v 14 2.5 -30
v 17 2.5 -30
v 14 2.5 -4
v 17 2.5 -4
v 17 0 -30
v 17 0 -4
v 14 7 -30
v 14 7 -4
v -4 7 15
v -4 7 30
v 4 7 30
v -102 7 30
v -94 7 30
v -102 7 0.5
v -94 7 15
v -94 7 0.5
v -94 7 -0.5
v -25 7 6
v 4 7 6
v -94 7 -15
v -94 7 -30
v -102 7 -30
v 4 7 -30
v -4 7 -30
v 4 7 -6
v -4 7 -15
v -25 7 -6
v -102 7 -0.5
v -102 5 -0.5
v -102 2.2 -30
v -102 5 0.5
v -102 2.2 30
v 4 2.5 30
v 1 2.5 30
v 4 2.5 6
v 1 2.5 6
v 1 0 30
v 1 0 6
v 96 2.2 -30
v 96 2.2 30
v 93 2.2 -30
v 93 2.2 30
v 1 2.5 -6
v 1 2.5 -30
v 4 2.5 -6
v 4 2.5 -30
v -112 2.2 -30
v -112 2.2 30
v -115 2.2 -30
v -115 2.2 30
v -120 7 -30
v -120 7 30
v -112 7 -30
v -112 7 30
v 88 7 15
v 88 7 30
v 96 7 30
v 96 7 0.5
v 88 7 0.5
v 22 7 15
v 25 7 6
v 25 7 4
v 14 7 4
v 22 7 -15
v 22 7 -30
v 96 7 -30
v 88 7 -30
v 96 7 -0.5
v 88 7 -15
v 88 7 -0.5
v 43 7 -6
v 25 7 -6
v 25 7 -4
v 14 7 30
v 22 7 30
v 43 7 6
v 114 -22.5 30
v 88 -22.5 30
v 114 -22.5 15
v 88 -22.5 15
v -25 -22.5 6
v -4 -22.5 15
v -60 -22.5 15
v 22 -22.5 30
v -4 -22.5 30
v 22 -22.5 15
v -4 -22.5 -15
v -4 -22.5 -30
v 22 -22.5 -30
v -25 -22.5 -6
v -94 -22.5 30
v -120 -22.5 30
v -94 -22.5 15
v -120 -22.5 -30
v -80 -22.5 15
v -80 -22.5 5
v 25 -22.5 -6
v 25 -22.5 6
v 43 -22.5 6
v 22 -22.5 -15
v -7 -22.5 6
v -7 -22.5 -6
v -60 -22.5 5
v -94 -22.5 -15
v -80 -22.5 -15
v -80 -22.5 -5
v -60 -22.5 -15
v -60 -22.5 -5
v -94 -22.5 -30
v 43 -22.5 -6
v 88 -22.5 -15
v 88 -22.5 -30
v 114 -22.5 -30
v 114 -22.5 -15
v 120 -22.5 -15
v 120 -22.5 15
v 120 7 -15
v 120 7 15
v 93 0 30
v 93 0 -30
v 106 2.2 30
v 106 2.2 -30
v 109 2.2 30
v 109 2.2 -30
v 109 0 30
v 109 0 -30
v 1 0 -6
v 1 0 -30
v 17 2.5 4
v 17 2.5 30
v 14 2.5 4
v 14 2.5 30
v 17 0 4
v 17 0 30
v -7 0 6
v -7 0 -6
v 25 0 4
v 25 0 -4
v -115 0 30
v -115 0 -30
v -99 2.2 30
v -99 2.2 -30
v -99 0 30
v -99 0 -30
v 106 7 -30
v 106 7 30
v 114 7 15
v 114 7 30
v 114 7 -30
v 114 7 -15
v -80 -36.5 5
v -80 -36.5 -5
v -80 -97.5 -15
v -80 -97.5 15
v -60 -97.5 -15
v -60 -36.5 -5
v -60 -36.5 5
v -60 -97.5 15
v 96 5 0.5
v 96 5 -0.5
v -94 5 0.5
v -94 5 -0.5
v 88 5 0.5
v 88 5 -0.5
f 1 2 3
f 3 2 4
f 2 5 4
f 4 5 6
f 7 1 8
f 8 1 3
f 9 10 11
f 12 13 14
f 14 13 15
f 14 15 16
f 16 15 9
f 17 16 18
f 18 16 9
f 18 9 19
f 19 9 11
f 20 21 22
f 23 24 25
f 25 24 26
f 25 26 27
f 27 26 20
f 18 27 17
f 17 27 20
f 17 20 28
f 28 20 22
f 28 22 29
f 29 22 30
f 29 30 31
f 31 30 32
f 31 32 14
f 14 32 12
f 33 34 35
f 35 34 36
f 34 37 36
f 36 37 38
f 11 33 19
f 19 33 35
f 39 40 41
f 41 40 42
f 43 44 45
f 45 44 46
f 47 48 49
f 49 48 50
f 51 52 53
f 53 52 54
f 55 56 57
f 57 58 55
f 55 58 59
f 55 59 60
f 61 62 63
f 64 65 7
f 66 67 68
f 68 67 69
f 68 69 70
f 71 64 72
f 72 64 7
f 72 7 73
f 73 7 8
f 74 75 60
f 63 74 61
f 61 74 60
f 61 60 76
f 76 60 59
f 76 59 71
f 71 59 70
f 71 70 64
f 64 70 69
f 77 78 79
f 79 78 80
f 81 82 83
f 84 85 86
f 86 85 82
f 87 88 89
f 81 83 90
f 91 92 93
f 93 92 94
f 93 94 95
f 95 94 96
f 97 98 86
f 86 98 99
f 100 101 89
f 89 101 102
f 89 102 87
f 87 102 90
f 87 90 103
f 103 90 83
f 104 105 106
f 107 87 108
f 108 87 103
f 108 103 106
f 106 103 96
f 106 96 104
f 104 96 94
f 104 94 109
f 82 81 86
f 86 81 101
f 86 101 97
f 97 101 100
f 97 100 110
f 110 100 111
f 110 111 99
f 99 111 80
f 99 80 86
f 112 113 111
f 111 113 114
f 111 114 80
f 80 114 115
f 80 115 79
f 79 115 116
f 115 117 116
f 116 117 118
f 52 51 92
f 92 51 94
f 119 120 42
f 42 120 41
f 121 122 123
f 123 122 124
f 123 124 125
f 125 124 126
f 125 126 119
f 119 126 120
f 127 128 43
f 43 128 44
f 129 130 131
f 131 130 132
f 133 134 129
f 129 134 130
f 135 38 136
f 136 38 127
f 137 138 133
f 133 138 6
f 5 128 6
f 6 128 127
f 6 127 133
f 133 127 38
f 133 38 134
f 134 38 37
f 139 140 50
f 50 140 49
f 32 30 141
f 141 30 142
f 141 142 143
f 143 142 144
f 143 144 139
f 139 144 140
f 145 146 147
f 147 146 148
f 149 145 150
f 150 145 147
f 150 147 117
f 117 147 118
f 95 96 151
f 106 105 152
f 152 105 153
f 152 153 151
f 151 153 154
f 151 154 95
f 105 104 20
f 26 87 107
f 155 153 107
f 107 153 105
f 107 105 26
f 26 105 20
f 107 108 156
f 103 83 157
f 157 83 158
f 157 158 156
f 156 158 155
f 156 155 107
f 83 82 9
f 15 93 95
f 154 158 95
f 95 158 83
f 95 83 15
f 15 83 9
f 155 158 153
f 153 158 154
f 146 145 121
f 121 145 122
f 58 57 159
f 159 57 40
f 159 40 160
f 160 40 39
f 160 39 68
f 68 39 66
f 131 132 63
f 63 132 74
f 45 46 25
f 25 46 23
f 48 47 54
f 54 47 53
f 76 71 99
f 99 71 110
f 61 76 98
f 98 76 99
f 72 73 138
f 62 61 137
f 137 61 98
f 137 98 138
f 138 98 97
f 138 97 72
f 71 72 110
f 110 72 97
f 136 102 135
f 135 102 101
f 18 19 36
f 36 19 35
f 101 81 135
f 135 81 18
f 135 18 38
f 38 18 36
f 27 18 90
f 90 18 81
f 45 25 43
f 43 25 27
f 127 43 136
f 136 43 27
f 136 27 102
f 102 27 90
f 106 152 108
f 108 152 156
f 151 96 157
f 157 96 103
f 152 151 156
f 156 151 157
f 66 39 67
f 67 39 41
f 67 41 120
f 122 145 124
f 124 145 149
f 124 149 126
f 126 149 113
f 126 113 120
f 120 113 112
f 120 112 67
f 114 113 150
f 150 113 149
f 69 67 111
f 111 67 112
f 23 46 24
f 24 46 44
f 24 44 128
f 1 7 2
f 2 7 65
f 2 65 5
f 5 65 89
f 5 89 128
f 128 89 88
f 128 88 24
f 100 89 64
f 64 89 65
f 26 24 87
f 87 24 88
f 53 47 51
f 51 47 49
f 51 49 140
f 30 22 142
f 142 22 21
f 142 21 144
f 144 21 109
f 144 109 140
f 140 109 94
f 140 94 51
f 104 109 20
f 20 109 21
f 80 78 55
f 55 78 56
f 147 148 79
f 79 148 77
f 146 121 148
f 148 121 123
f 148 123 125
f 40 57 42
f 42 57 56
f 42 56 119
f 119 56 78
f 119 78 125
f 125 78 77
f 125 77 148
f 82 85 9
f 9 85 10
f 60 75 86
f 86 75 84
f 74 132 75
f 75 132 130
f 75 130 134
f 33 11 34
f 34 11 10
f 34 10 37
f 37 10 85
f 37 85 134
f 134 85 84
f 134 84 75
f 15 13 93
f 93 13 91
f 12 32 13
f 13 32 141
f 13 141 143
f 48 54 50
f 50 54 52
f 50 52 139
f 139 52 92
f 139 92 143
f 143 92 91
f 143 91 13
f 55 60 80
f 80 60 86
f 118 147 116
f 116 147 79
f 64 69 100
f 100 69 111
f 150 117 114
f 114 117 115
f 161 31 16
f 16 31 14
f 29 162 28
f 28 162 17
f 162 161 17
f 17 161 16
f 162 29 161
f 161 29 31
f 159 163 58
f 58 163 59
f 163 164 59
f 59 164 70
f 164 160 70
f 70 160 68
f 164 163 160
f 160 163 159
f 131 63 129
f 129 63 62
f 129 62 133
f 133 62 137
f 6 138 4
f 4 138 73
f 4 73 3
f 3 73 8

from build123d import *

# Parameters (mm, degrees)
BOSS_EXTRUDE1_DEPTH      = 15
BOSS_EXTRUDE1_DEPTH_BACK = 22.5
SKETCH2_W                = 240
SKETCH2_H                = 40
CUT_EXTRUDE1_REACH       = 130.477
SKETCH3_W                = 16
SKETCH3_H                = 2.2
SKETCH3_H_2              = 2.5
SKETCH5_W                = 240
SKETCH5_H                = 40
CUT_EXTRUDE2_DEPTH       = 8
SKETCH6_W                = 20
SKETCH6_H                = 30
BOSS_EXTRUDE2_DEPTH      = 75
CUT_EXTRUDE3_REACH       = 161.707
SKETCH8_W                = 10
SKETCH8_H                = 4.8
SKETCH8_H_2              = 4.5
SKETCH9_R                = 2.1
CUT_EXTRUDE4_DEPTH       = 4.4
SKETCH11_R               = 1.55
CUT_EXTRUDE5_DEPTH       = 11
SKETCH10_R               = 1.55
CUT_EXTRUDE6_DEPTH       = 11
SKETCH12_R               = 2.1
CUT_EXTRUDE7_DEPTH       = 4.4
SKETCH13_R               = 1.65
CUT_EXTRUDE8_DEPTH       = 11
SKETCH14_W               = 18
SKETCH14_H               = 12
CUT_EXTRUDE9_DEPTH       = 29.5
SKETCH15_W               = 10
SKETCH15_H               = 14
CUT_EXTRUDE10_DEPTH      = 20
BOSS_EXTRUDE3_DEPTH      = 10
BOSS_EXTRUDE3_DEPTH_BACK = 50
CUT_EXTRUDE11_REACH      = 163.927
SKETCH18_W               = 89.999903017
SKETCH18_H               = 5
SKETCH18_W_2             = 6.000219265
SKETCH18_W_3             = 65.999877718
SKETCH20_W               = 11
SKETCH20_H               = 12
CUT_EXTRUDE12_DEPTH      = 7
SKETCH21_W               = 8
SKETCH21_H               = 0.5
CUT_EXTRUDE13_DEPTH      = 2
SKETCH22_W               = 8
SKETCH22_H               = 1
CUT_EXTRUDE14_DEPTH      = 2
CUT_EXTRUDE15_REACH      = 163.927
SKETCH23_W               = 11
SKETCH23_H               = 8


with BuildPart() as part:
    # Sketch2 → Boss-Extrude1 (new, two sides: drawn at the far end of the back side and taken through both)
    with BuildSketch(Plane(origin=(0, 0, 0), x_dir=(1, 0, 0), z_dir=(0, 1, 0)).offset(-BOSS_EXTRUDE1_DEPTH_BACK)):
        Rectangle(SKETCH2_W, SKETCH2_H)
    extrude(amount=BOSS_EXTRUDE1_DEPTH + BOSS_EXTRUDE1_DEPTH_BACK)

    # Sketch3 → Cut-Extrude1 (cut, up to next)
    with BuildSketch(Plane.XY.offset(20), mode=Mode.PRIVATE) as cut_extrude1_sk1:
        with Locations((-107, 1.1)):
            Rectangle(SKETCH3_W, SKETCH3_H)
    cut_extrude1_tool1 = extrude(cut_extrude1_sk1.sketch, amount=-CUT_EXTRUDE1_REACH, mode=Mode.PRIVATE) & part.part
    # Sketch3 → Cut-Extrude1 (cut, up to next)
    with BuildSketch(Plane.XY.offset(20), mode=Mode.PRIVATE) as cut_extrude1_sk2:
        with Locations((8.999903017, 1.25)):
            Rectangle(SKETCH3_W, SKETCH3_H_2)
    cut_extrude1_tool2 = extrude(cut_extrude1_sk2.sketch, amount=-CUT_EXTRUDE1_REACH, mode=Mode.PRIVATE) & part.part
    # Sketch3 → Cut-Extrude1 (cut, up to next)
    with BuildSketch(Plane.XY.offset(20), mode=Mode.PRIVATE) as cut_extrude1_sk3:
        with Locations((100.999780735, 1.1)):
            Rectangle(SKETCH3_W, SKETCH3_H)
    cut_extrude1_tool3 = extrude(cut_extrude1_sk3.sketch, amount=-CUT_EXTRUDE1_REACH, mode=Mode.PRIVATE) & part.part
    add(cut_extrude1_tool1.solids().sort_by_distance((-107, 1.1, 20))[0], mode=Mode.SUBTRACT)
    add(cut_extrude1_tool2.solids().sort_by_distance((8.999903, 1.25, 20))[0], mode=Mode.SUBTRACT)
    add(cut_extrude1_tool3.solids().sort_by_distance((100.999781, 1.1, 20))[0], mode=Mode.SUBTRACT)

    # Sketch5 → Cut-Extrude2 (cut)
    with BuildSketch(Plane(origin=(0, 15, 0), x_dir=(1, 0, 0), z_dir=(0, 1, 0))):
        Rectangle(SKETCH5_W, SKETCH5_H)
    extrude(amount=-CUT_EXTRUDE2_DEPTH, mode=Mode.SUBTRACT)

    # Sketch6 → Boss-Extrude2 (add)
    with BuildSketch(Plane.XZ.offset(22.5)):
        with Locations((-70, 0)):
            Rectangle(SKETCH6_W, SKETCH6_H)
    extrude(amount=BOSS_EXTRUDE2_DEPTH)

    # Sketch8 → Cut-Extrude3 (cut, up to next)
    with BuildSketch(Plane.XY.offset(20), mode=Mode.PRIVATE) as cut_extrude3_sk1:
        with Locations((-107, 4.6)):
            Rectangle(SKETCH8_W, SKETCH8_H)
    cut_extrude3_tool1 = extrude(cut_extrude3_sk1.sketch, amount=-CUT_EXTRUDE3_REACH, mode=Mode.PRIVATE) & part.part
    # Sketch8 → Cut-Extrude3 (cut, up to next)
    with BuildSketch(Plane.XY.offset(20), mode=Mode.PRIVATE) as cut_extrude3_sk2:
        with Locations((8.999903017, 4.75)):
            Rectangle(SKETCH8_W, SKETCH8_H_2)
    cut_extrude3_tool2 = extrude(cut_extrude3_sk2.sketch, amount=-CUT_EXTRUDE3_REACH, mode=Mode.PRIVATE) & part.part
    # Sketch8 → Cut-Extrude3 (cut, up to next)
    with BuildSketch(Plane.XY.offset(20), mode=Mode.PRIVATE) as cut_extrude3_sk3:
        with Locations((100.999780735, 4.6)):
            Rectangle(SKETCH8_W, SKETCH8_H)
    cut_extrude3_tool3 = extrude(cut_extrude3_sk3.sketch, amount=-CUT_EXTRUDE3_REACH, mode=Mode.PRIVATE) & part.part
    add(cut_extrude3_tool1.solids().sort_by_distance((-107, 4.6, 20))[0], mode=Mode.SUBTRACT)
    add(cut_extrude3_tool2.solids().sort_by_distance((8.999903, 4.75, 20))[0], mode=Mode.SUBTRACT)
    add(cut_extrude3_tool3.solids().sort_by_distance((100.999781, 4.6, 20))[0], mode=Mode.SUBTRACT)

    # Sketch9 → Cut-Extrude4 (cut)
    with BuildSketch(Plane(origin=(0, 0, 0), x_dir=(1, 0, 0), z_dir=(0, 1, 0))):
        with Locations(Location((-107, 0, 0), (0, 0, 270))):
            Circle(SKETCH9_R)
        with Locations(Location((100.999780735, 0, 0), (0, 0, 270))):
            Circle(SKETCH9_R)
    extrude(amount=-CUT_EXTRUDE4_DEPTH, mode=Mode.SUBTRACT)

    # Sketch11 → Cut-Extrude5 (cut)
    with BuildSketch(Plane(origin=(0, -4.4, 0), x_dir=(1, 0, 0), z_dir=(0, 1, 0))):
        with Locations(Location((100.999780735, 0, 0), (0, 0, 270))):
            Circle(SKETCH11_R)
    extrude(amount=-CUT_EXTRUDE5_DEPTH, mode=Mode.SUBTRACT)

    # Sketch10 → Cut-Extrude6 (cut)
    with BuildSketch(Plane(origin=(0, -4.4, 0), x_dir=(1, 0, 0), z_dir=(0, 1, 0))):
        with Locations(Location((-107, 0, 0), (0, 0, 270))):
            Circle(SKETCH10_R)
    extrude(amount=-CUT_EXTRUDE6_DEPTH, mode=Mode.SUBTRACT)

    # Sketch12 → Cut-Extrude7 (cut)
    with BuildSketch(Plane(origin=(0, 0, 0), x_dir=(1, 0, 0), z_dir=(0, 1, 0))):
        with Locations(Location((10.715225152, -11.813940745, 0), (0, 0, 270))):
            Circle(SKETCH12_R)
        with Locations(Location((10.75, 12, 0), (0, 0, 270))):
            Circle(SKETCH12_R)
    extrude(amount=-CUT_EXTRUDE7_DEPTH, mode=Mode.SUBTRACT)

    # Sketch13 → Cut-Extrude8 (cut)
    with BuildSketch(Plane(origin=(0, -4.4, 0), x_dir=(1, 0, 0), z_dir=(0, 1, 0))):
        with Locations(Location((10.715225152, -11.813940745, 0), (0, 0, 270))):
            Circle(SKETCH13_R)
        with Locations(Location((10.75, 12, 0), (0, 0, 270))):
            Circle(SKETCH13_R)
    extrude(amount=-CUT_EXTRUDE8_DEPTH, mode=Mode.SUBTRACT)

    # Sketch14 → Cut-Extrude9 (cut)
    with BuildSketch(Plane(origin=(0, 7, 0), x_dir=(1, 0, 0), z_dir=(0, 1, 0))):
        with Locations((-16.000096983, 0)):
            Rectangle(SKETCH14_W, SKETCH14_H)
        with Locations((33.999903017, 0)):
            Rectangle(SKETCH14_W, SKETCH14_H)
    extrude(amount=-CUT_EXTRUDE9_DEPTH, mode=Mode.SUBTRACT)

    # Sketch15 → Cut-Extrude10 (cut)
    with BuildSketch(Plane.ZY.offset(80)):
        with Locations((0, -29.5)):
            Rectangle(SKETCH15_W, SKETCH15_H)
    extrude(amount=-CUT_EXTRUDE10_DEPTH, mode=Mode.SUBTRACT)

    # Sketch17 → Boss-Extrude3 (add, two sides: drawn at the far end of the back side and taken through both)
    with BuildSketch(Plane.XY.offset(20).offset(-BOSS_EXTRUDE3_DEPTH_BACK)):
        Polygon((-120, 7), (-120, -22.5), (-94, -22.5), (-94, 7), (-102, 7), (-102, 2.2), (-99, 2.2), (-99, 0), (-115, 0), (-115, 2.2), (-112, 2.2), (-112, 7), align=None)
        Polygon((21.999903017, 7), (21.999903017, -22.5), (-4.000096983, -22.5), (-4.000096983, 7), (3.999903017, 7), (3.999903017, 2.5), (0.999903017, 2.5), (0.999903017, 0), (16.999903017, 0), (16.999903017, 2.5), (13.999903017, 2.5), (13.999903017, 7), align=None)
        Polygon((87.999780735, 7), (87.999780735, -22.5), (113.999780735, -22.5), (113.999780735, 7), (105.999780735, 7), (105.999780735, 2.2), (108.999780735, 2.2), (108.999780735, 0), (92.999780735, 0), (92.999780735, 2.2), (95.999780735, 2.2), (95.999780735, 7), align=None)
    extrude(amount=BOSS_EXTRUDE3_DEPTH + BOSS_EXTRUDE3_DEPTH_BACK)

    # Sketch18 → Cut-Extrude11 (cut, up to next)
    with BuildSketch(Plane(origin=(0, 7, 0), x_dir=(1, 0, 0), z_dir=(0, 1, 0)), mode=Mode.PRIVATE) as cut_extrude11_sk1:
        with Locations((-49.000048492, -17.5)):
            Rectangle(SKETCH18_W, SKETCH18_H)
    cut_extrude11_tool1 = extrude(cut_extrude11_sk1.sketch, amount=-CUT_EXTRUDE11_REACH, mode=Mode.PRIVATE) & part.part
    # Sketch18 → Cut-Extrude11 (cut, up to next)
    with BuildSketch(Plane(origin=(0, 7, 0), x_dir=(1, 0, 0), z_dir=(0, 1, 0)), mode=Mode.PRIVATE) as cut_extrude11_sk2:
        with Locations((116.999890368, -17.5)):
            Rectangle(SKETCH18_W_2, SKETCH18_H)
    cut_extrude11_tool2 = extrude(cut_extrude11_sk2.sketch, amount=-CUT_EXTRUDE11_REACH, mode=Mode.PRIVATE) & part.part
    # Sketch18 → Cut-Extrude11 (cut, up to next)
    with BuildSketch(Plane(origin=(0, 7, 0), x_dir=(1, 0, 0), z_dir=(0, 1, 0)), mode=Mode.PRIVATE) as cut_extrude11_sk3:
        with Locations((-49.000048492, 17.5)):
            Rectangle(SKETCH18_W, SKETCH18_H)
    cut_extrude11_tool3 = extrude(cut_extrude11_sk3.sketch, amount=-CUT_EXTRUDE11_REACH, mode=Mode.PRIVATE) & part.part
    # Sketch18 → Cut-Extrude11 (cut, up to next)
    with BuildSketch(Plane(origin=(0, 7, 0), x_dir=(1, 0, 0), z_dir=(0, 1, 0)), mode=Mode.PRIVATE) as cut_extrude11_sk4:
        with Locations((54.999841876, -17.5)):
            Rectangle(SKETCH18_W_3, SKETCH18_H)
    cut_extrude11_tool4 = extrude(cut_extrude11_sk4.sketch, amount=-CUT_EXTRUDE11_REACH, mode=Mode.PRIVATE) & part.part
    # Sketch18 → Cut-Extrude11 (cut, up to next)
    with BuildSketch(Plane(origin=(0, 7, 0), x_dir=(1, 0, 0), z_dir=(0, 1, 0)), mode=Mode.PRIVATE) as cut_extrude11_sk5:
        with Locations((116.999890368, 17.5)):
            Rectangle(SKETCH18_W_2, SKETCH18_H)
    cut_extrude11_tool5 = extrude(cut_extrude11_sk5.sketch, amount=-CUT_EXTRUDE11_REACH, mode=Mode.PRIVATE) & part.part
    # Sketch18 → Cut-Extrude11 (cut, up to next)
    with BuildSketch(Plane(origin=(0, 7, 0), x_dir=(1, 0, 0), z_dir=(0, 1, 0)), mode=Mode.PRIVATE) as cut_extrude11_sk6:
        with Locations((54.999841876, 17.5)):
            Rectangle(SKETCH18_W_3, SKETCH18_H)
    cut_extrude11_tool6 = extrude(cut_extrude11_sk6.sketch, amount=-CUT_EXTRUDE11_REACH, mode=Mode.PRIVATE) & part.part
    add(cut_extrude11_tool1.solids().sort_by_distance((-49.000048, 7, 17.5))[0], mode=Mode.SUBTRACT)
    add(cut_extrude11_tool2.solids().sort_by_distance((116.99989, 7, 17.5))[0], mode=Mode.SUBTRACT)
    add(cut_extrude11_tool3.solids().sort_by_distance((-49.000048, 7, -17.5))[0], mode=Mode.SUBTRACT)
    add(cut_extrude11_tool4.solids().sort_by_distance((54.999842, 7, 17.5))[0], mode=Mode.SUBTRACT)
    add(cut_extrude11_tool5.solids().sort_by_distance((116.99989, 7, -17.5))[0], mode=Mode.SUBTRACT)
    add(cut_extrude11_tool6.solids().sort_by_distance((54.999842, 7, -17.5))[0], mode=Mode.SUBTRACT)

    # Sketch20 → Cut-Extrude12 (cut)
    with BuildSketch(Plane(origin=(0, 7, 0), x_dir=(1, 0, 0), z_dir=(0, 1, 0))):
        with Locations((-1.500096983, 0)):
            Rectangle(SKETCH20_W, SKETCH20_H)
    extrude(amount=-CUT_EXTRUDE12_DEPTH, mode=Mode.SUBTRACT)

    # Sketch21 → Cut-Extrude13 (cut)
    with BuildSketch(Plane(origin=(0, 7, 0), x_dir=(1, 0, 0), z_dir=(0, 1, 0))):
        with Locations((-98, -0.25)):
            Rectangle(SKETCH21_W, SKETCH21_H)
        with Locations((-98, 0.25)):
            Rectangle(SKETCH21_W, SKETCH21_H)
    extrude(amount=-CUT_EXTRUDE13_DEPTH, mode=Mode.SUBTRACT)

    # Sketch22 → Cut-Extrude14 (cut)
    with BuildSketch(Plane(origin=(0, 7, 0), x_dir=(1, 0, 0), z_dir=(0, 1, 0))):
        with Locations((91.999780735, 0)):
            Rectangle(SKETCH22_W, SKETCH22_H)
    extrude(amount=-CUT_EXTRUDE14_DEPTH, mode=Mode.SUBTRACT)

    # Cut-Extrude15: up to this face of the body (flat: up to its plane)
    cut_extrude15_end = Plane(part.part.faces().sort_by_distance((7.908993926, 0, 0))[0])
    # Sketch23 → Cut-Extrude15 (cut, up to the picked face)
    with BuildSketch(Plane(origin=(0, 7, 0), x_dir=(1, 0, 0), z_dir=(0, 1, 0)), mode=Mode.PRIVATE) as cut_extrude15_sk1:
        with Locations((19.499903017, 0)):
            Rectangle(SKETCH23_W, SKETCH23_H)
    cut_extrude15_tool1 = split(extrude(cut_extrude15_sk1.sketch, amount=-CUT_EXTRUDE15_REACH, mode=Mode.PRIVATE), bisect_by=cut_extrude15_end, keep=Keep.BOTH, mode=Mode.PRIVATE)
    add(cut_extrude15_tool1.solids().sort_by(Axis((19.499903, 7, 0), (0, -1, 0)))[0], mode=Mode.SUBTRACT)


solid = part.part
